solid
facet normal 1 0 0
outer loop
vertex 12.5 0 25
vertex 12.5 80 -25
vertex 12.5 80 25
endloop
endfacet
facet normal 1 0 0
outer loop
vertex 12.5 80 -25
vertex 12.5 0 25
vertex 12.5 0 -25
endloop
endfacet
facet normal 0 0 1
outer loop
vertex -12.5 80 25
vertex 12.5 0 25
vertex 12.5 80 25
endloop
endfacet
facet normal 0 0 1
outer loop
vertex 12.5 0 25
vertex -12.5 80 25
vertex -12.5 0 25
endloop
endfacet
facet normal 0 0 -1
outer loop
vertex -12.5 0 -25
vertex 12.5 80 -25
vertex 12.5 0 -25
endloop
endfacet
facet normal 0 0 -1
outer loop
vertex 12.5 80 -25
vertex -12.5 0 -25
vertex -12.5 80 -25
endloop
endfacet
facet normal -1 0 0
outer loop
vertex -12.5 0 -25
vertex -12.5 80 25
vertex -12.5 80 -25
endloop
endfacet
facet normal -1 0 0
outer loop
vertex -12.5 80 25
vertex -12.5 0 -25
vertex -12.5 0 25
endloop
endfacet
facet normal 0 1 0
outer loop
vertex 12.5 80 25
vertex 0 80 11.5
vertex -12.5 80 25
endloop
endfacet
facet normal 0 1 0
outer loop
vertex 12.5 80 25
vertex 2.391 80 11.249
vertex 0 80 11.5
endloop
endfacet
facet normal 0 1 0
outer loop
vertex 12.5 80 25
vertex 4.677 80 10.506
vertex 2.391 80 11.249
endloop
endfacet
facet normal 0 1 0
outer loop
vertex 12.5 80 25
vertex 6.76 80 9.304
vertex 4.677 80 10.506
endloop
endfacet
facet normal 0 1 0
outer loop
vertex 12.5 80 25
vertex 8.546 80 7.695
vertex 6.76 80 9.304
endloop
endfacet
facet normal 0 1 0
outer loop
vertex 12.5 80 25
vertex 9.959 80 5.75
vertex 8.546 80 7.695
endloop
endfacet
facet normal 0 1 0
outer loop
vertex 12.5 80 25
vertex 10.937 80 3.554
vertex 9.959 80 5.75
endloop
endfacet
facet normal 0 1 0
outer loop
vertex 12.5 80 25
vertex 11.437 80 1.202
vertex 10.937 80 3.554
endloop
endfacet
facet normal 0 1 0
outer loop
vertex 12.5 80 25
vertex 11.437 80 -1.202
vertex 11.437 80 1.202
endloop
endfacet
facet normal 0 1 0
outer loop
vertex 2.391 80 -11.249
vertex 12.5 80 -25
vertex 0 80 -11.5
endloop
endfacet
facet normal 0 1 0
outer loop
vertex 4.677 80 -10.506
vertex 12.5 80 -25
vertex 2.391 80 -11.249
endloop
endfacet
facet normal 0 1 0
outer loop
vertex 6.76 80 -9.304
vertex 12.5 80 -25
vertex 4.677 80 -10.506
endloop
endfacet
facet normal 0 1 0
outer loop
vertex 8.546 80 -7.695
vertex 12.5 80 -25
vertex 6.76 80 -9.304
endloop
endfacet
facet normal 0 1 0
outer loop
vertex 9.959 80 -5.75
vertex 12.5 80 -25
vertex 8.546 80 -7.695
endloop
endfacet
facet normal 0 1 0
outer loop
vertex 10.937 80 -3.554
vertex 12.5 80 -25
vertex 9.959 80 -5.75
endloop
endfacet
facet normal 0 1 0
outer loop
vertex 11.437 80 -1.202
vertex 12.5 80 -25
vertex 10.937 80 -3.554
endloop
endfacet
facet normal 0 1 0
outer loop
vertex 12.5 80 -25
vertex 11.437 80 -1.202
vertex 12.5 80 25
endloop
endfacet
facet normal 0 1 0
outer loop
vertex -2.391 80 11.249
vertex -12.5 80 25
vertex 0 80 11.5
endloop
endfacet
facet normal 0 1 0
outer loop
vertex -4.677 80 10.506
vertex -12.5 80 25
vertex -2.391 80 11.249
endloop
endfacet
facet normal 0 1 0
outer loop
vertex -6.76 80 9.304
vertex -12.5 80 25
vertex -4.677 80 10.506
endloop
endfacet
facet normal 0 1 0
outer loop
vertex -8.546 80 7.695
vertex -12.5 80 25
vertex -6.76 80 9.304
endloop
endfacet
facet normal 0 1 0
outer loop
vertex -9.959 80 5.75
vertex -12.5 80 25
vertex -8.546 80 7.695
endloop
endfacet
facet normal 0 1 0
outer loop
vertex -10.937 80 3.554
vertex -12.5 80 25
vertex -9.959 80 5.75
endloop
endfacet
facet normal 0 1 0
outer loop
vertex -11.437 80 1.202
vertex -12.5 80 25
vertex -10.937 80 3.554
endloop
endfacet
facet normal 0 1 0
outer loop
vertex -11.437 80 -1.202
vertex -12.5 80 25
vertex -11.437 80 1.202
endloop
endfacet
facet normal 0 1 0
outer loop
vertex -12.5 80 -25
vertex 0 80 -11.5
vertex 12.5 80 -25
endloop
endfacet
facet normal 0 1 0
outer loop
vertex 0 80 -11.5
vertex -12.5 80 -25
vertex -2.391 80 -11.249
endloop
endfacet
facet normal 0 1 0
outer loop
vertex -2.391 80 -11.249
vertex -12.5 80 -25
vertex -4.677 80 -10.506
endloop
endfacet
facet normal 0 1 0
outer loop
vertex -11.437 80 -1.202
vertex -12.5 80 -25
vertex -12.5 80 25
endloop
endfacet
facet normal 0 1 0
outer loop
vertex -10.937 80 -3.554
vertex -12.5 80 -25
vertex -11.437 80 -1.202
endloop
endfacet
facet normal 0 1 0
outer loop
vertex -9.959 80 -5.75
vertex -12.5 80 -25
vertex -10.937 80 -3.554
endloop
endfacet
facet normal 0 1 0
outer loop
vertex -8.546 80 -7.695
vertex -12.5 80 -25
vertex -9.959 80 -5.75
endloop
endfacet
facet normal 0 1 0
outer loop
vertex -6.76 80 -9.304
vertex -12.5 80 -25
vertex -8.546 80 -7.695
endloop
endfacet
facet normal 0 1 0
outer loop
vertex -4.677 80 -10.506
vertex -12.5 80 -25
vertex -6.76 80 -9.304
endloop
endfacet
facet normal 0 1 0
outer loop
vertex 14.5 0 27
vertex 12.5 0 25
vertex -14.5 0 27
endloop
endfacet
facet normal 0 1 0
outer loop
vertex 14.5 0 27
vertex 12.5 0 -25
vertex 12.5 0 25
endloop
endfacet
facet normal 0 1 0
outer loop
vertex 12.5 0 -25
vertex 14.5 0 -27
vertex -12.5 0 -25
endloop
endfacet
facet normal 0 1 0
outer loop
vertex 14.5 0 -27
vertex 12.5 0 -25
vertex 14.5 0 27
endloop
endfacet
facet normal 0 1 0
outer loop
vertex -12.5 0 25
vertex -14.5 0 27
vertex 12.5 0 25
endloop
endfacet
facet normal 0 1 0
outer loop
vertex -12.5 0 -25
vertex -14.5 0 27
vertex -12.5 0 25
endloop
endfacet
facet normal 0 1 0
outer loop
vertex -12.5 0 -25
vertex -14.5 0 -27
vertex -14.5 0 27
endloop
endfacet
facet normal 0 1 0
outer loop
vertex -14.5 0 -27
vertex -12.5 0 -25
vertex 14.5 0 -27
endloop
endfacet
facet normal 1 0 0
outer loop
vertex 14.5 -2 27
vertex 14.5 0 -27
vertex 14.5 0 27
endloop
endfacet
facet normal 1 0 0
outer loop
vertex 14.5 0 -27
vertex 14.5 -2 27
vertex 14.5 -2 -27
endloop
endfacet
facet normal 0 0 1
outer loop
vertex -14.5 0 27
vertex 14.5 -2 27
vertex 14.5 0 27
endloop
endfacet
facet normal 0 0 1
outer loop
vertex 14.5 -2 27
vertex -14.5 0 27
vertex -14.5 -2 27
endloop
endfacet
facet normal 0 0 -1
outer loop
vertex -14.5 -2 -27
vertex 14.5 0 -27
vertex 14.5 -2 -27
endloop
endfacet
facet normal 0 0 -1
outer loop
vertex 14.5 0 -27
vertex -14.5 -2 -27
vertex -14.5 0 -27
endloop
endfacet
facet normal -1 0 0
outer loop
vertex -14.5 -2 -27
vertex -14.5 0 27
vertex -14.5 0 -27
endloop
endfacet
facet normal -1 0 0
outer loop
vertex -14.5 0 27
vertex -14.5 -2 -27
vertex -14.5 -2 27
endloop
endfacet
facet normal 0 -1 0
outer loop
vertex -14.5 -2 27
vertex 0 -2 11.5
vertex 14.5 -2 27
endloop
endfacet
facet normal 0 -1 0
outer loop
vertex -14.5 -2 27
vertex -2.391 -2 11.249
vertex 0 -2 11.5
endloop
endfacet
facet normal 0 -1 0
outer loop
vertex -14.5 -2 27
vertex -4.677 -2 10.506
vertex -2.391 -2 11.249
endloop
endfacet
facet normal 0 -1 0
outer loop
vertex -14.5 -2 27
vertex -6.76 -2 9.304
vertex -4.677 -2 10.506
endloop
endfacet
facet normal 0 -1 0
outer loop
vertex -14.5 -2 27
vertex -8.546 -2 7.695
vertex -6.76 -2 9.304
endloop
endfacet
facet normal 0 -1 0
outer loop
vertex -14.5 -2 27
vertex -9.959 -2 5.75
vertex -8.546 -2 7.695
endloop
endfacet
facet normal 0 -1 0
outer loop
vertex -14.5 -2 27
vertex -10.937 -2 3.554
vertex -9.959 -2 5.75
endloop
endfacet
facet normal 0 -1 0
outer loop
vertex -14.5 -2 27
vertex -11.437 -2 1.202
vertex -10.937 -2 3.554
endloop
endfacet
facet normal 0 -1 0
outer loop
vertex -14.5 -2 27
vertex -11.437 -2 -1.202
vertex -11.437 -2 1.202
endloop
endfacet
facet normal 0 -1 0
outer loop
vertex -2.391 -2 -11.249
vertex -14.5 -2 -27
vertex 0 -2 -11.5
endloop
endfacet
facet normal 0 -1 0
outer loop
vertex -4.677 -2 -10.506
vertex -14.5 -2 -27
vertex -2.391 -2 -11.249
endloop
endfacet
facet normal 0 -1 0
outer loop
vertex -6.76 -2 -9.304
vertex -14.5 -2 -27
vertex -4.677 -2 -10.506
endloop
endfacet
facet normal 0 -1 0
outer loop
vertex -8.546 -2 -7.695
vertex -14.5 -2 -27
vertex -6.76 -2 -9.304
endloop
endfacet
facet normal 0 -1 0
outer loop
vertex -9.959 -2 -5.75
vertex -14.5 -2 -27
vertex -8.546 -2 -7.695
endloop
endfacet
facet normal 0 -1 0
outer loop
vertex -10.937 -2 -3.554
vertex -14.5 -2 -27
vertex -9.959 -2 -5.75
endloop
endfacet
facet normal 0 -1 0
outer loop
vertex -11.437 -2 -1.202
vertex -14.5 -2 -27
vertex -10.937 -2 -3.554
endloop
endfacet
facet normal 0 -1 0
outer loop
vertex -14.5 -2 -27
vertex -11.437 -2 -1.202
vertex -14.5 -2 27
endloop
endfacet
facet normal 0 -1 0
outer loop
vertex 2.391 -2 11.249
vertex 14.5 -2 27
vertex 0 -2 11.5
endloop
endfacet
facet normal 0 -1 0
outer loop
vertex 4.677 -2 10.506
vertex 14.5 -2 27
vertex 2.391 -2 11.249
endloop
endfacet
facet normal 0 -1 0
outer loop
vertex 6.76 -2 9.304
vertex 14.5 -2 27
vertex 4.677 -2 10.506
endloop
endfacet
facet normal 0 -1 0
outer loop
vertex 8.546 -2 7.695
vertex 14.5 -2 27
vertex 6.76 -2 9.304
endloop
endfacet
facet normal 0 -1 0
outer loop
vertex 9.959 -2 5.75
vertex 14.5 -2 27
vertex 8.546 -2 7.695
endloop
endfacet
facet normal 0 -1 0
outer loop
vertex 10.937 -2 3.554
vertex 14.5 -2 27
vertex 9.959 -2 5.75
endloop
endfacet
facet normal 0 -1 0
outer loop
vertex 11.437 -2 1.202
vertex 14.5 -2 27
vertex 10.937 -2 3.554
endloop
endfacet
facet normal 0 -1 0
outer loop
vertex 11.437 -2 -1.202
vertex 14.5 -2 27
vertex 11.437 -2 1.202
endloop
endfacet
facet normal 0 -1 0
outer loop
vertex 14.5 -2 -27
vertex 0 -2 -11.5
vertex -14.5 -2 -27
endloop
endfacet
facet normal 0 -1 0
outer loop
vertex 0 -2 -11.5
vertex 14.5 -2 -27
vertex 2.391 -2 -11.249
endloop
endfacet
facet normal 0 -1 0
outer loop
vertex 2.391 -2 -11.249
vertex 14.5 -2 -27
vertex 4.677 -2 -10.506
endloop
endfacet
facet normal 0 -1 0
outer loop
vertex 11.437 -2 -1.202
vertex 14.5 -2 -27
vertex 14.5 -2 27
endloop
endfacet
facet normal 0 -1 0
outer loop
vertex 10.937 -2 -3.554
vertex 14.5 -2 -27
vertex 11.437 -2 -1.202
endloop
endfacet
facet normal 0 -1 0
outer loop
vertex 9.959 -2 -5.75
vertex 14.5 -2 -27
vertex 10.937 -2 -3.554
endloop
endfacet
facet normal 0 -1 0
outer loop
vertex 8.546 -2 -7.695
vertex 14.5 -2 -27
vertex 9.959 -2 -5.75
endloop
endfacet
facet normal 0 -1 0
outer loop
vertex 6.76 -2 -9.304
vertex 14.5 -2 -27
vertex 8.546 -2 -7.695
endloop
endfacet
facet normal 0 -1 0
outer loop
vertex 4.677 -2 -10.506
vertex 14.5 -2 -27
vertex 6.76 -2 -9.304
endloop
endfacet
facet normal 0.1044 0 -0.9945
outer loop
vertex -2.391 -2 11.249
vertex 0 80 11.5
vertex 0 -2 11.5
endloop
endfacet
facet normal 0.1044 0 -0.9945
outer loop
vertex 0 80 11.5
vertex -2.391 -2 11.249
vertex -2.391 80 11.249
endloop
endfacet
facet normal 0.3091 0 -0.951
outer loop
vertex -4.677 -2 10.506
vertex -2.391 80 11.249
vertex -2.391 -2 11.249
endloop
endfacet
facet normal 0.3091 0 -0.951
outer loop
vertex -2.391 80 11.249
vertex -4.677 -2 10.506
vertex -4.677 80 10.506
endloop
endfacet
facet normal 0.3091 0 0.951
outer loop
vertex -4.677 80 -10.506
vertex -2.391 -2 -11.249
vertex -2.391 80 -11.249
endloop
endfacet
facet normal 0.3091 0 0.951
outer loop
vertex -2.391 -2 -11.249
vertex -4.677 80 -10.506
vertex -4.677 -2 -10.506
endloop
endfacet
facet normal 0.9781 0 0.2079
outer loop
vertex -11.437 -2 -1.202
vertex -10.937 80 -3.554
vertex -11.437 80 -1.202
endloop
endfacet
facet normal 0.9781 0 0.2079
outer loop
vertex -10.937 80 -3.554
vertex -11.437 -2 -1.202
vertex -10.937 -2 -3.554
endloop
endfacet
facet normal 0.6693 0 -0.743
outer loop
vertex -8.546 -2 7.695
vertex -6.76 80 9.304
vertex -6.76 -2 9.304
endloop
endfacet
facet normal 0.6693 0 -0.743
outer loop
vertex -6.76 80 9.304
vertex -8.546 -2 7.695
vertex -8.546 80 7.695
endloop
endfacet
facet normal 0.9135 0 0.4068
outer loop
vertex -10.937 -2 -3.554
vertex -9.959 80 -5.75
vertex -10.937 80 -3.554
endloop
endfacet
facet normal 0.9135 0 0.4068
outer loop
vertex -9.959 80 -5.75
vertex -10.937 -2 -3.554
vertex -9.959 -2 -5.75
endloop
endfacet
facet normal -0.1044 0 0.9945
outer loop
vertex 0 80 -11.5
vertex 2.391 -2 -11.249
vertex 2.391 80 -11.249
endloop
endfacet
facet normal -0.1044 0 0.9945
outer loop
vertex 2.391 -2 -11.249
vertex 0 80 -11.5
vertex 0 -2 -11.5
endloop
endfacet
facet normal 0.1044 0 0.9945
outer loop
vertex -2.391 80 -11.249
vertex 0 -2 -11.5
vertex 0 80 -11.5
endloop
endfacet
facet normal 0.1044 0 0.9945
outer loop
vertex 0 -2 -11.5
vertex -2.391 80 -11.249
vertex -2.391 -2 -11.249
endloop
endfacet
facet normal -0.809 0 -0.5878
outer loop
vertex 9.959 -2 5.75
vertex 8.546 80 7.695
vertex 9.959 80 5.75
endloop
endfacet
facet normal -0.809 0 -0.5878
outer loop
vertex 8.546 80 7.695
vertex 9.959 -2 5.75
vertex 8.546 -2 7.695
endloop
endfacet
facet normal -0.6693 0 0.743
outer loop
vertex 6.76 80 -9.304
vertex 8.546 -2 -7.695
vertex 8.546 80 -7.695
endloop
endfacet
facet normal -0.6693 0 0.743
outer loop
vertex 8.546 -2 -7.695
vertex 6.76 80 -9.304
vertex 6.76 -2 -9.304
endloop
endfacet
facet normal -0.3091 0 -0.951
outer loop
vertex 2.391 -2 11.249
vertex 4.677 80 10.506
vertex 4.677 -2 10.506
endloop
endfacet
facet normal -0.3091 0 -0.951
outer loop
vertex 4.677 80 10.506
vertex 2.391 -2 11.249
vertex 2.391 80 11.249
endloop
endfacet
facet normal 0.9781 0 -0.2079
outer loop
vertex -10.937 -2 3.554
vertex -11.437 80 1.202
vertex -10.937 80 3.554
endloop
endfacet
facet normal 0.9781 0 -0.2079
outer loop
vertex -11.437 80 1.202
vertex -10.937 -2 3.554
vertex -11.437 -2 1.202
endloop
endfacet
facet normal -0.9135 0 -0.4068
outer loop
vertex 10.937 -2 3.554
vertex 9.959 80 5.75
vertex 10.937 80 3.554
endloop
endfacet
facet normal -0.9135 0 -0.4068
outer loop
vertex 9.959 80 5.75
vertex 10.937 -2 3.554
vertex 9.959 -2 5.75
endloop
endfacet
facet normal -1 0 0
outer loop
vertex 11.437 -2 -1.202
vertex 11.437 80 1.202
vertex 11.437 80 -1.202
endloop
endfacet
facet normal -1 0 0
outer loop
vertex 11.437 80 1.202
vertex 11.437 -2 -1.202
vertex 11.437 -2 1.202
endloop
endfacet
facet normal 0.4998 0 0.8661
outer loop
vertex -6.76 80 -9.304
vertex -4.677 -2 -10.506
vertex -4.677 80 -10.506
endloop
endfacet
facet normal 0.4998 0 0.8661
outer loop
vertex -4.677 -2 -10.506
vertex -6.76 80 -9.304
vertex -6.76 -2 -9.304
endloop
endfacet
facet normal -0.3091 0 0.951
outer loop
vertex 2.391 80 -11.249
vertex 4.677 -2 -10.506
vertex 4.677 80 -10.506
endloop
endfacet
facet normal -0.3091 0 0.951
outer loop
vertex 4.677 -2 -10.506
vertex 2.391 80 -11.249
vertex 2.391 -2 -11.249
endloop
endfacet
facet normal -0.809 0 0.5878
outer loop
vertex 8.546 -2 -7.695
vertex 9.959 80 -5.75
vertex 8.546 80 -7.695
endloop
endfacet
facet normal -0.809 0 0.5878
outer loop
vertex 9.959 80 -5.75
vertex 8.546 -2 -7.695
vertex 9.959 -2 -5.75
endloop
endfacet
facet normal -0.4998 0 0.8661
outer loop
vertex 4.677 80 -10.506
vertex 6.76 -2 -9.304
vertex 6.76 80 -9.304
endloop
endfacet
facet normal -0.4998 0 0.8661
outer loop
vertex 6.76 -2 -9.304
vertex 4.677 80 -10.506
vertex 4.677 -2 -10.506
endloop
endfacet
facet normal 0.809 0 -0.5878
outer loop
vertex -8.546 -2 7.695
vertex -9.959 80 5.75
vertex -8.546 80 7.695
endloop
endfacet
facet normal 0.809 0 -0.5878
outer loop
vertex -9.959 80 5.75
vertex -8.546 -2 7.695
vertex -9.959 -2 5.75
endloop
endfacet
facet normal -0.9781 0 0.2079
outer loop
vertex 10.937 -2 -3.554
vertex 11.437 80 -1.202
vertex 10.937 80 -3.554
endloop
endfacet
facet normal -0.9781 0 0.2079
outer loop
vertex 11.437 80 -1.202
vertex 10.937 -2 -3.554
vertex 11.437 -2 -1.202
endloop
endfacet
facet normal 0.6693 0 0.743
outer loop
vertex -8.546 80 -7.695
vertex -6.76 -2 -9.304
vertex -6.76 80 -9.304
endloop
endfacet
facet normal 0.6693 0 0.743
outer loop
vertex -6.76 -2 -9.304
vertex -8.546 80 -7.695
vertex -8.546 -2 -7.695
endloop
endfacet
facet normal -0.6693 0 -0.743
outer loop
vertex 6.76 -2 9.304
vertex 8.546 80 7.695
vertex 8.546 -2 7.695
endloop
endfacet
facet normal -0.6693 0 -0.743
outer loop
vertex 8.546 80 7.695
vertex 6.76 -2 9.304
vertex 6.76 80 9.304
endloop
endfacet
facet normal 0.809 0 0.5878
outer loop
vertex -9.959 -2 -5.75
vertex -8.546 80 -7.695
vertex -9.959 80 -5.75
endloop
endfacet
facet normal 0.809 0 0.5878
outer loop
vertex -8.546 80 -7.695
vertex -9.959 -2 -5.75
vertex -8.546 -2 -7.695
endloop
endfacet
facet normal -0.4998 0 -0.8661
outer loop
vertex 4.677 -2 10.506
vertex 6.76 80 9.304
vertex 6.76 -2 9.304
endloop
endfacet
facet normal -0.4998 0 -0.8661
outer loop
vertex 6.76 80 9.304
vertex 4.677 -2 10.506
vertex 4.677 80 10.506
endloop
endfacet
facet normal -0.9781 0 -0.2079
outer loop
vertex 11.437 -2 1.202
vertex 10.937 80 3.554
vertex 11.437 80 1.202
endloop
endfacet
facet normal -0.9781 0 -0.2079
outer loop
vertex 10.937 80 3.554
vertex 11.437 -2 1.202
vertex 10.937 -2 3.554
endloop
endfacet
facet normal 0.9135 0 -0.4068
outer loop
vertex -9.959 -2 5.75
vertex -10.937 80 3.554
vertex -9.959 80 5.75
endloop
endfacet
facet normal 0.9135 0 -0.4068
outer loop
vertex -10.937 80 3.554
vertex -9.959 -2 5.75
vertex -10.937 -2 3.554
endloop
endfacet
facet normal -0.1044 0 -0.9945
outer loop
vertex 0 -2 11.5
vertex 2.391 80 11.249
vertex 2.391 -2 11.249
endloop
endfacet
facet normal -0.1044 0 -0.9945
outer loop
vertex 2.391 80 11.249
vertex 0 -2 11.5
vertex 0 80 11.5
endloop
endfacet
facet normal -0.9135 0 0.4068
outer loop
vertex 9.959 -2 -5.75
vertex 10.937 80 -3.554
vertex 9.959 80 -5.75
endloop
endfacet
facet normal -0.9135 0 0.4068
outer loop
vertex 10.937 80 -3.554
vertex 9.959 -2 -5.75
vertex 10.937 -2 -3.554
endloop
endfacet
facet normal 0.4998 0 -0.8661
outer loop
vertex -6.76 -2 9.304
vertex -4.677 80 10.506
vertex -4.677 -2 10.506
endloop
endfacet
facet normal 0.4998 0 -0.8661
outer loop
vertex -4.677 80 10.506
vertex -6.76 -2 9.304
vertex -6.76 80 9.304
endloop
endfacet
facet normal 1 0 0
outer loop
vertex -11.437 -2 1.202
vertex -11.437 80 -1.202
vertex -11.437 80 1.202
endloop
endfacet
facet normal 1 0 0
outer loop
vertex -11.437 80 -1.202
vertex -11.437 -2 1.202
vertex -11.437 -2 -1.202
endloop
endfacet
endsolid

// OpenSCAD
width=25; // x
depth=80; // y
height=50; // z
hole=22;
extra=0.5;
extraHole=5;
limit=2;

difference(){
    union(){
        translate([-width/2,0,-height/2]){
            cube([width,depth,height]);
        }
        translate([-(width/2+limit),-limit,-(height/2+limit)]){
            cube([width+(2*limit),limit,height+(2*limit)]);
        }
    }
    translate([0,-(extraHole+limit), 0]){
        rotate([90,90,180]){
            cylinder(depth+limit+(2*extraHole), hole/2+extra,hole/2+extra);
        }
    }
 }
